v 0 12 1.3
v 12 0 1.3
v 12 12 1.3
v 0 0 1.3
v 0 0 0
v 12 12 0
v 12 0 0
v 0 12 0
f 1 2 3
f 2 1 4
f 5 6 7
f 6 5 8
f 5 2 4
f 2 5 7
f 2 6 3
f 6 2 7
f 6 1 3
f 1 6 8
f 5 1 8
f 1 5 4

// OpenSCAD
/* Warning, this is a very basic generator with a lot of approximation 
input data : [LFBGA, AHB, 12x12x1.3mm, 180, , A, C04-21120A]
generated by com.zoubworld.electronics.cad.model3d.Basic
Date : Sun Feb 15 10:50:49 CET 2026
*/

//body
color("black")
translate([0,0,0])
cube([12.0,12.0,1.3], center=false);
